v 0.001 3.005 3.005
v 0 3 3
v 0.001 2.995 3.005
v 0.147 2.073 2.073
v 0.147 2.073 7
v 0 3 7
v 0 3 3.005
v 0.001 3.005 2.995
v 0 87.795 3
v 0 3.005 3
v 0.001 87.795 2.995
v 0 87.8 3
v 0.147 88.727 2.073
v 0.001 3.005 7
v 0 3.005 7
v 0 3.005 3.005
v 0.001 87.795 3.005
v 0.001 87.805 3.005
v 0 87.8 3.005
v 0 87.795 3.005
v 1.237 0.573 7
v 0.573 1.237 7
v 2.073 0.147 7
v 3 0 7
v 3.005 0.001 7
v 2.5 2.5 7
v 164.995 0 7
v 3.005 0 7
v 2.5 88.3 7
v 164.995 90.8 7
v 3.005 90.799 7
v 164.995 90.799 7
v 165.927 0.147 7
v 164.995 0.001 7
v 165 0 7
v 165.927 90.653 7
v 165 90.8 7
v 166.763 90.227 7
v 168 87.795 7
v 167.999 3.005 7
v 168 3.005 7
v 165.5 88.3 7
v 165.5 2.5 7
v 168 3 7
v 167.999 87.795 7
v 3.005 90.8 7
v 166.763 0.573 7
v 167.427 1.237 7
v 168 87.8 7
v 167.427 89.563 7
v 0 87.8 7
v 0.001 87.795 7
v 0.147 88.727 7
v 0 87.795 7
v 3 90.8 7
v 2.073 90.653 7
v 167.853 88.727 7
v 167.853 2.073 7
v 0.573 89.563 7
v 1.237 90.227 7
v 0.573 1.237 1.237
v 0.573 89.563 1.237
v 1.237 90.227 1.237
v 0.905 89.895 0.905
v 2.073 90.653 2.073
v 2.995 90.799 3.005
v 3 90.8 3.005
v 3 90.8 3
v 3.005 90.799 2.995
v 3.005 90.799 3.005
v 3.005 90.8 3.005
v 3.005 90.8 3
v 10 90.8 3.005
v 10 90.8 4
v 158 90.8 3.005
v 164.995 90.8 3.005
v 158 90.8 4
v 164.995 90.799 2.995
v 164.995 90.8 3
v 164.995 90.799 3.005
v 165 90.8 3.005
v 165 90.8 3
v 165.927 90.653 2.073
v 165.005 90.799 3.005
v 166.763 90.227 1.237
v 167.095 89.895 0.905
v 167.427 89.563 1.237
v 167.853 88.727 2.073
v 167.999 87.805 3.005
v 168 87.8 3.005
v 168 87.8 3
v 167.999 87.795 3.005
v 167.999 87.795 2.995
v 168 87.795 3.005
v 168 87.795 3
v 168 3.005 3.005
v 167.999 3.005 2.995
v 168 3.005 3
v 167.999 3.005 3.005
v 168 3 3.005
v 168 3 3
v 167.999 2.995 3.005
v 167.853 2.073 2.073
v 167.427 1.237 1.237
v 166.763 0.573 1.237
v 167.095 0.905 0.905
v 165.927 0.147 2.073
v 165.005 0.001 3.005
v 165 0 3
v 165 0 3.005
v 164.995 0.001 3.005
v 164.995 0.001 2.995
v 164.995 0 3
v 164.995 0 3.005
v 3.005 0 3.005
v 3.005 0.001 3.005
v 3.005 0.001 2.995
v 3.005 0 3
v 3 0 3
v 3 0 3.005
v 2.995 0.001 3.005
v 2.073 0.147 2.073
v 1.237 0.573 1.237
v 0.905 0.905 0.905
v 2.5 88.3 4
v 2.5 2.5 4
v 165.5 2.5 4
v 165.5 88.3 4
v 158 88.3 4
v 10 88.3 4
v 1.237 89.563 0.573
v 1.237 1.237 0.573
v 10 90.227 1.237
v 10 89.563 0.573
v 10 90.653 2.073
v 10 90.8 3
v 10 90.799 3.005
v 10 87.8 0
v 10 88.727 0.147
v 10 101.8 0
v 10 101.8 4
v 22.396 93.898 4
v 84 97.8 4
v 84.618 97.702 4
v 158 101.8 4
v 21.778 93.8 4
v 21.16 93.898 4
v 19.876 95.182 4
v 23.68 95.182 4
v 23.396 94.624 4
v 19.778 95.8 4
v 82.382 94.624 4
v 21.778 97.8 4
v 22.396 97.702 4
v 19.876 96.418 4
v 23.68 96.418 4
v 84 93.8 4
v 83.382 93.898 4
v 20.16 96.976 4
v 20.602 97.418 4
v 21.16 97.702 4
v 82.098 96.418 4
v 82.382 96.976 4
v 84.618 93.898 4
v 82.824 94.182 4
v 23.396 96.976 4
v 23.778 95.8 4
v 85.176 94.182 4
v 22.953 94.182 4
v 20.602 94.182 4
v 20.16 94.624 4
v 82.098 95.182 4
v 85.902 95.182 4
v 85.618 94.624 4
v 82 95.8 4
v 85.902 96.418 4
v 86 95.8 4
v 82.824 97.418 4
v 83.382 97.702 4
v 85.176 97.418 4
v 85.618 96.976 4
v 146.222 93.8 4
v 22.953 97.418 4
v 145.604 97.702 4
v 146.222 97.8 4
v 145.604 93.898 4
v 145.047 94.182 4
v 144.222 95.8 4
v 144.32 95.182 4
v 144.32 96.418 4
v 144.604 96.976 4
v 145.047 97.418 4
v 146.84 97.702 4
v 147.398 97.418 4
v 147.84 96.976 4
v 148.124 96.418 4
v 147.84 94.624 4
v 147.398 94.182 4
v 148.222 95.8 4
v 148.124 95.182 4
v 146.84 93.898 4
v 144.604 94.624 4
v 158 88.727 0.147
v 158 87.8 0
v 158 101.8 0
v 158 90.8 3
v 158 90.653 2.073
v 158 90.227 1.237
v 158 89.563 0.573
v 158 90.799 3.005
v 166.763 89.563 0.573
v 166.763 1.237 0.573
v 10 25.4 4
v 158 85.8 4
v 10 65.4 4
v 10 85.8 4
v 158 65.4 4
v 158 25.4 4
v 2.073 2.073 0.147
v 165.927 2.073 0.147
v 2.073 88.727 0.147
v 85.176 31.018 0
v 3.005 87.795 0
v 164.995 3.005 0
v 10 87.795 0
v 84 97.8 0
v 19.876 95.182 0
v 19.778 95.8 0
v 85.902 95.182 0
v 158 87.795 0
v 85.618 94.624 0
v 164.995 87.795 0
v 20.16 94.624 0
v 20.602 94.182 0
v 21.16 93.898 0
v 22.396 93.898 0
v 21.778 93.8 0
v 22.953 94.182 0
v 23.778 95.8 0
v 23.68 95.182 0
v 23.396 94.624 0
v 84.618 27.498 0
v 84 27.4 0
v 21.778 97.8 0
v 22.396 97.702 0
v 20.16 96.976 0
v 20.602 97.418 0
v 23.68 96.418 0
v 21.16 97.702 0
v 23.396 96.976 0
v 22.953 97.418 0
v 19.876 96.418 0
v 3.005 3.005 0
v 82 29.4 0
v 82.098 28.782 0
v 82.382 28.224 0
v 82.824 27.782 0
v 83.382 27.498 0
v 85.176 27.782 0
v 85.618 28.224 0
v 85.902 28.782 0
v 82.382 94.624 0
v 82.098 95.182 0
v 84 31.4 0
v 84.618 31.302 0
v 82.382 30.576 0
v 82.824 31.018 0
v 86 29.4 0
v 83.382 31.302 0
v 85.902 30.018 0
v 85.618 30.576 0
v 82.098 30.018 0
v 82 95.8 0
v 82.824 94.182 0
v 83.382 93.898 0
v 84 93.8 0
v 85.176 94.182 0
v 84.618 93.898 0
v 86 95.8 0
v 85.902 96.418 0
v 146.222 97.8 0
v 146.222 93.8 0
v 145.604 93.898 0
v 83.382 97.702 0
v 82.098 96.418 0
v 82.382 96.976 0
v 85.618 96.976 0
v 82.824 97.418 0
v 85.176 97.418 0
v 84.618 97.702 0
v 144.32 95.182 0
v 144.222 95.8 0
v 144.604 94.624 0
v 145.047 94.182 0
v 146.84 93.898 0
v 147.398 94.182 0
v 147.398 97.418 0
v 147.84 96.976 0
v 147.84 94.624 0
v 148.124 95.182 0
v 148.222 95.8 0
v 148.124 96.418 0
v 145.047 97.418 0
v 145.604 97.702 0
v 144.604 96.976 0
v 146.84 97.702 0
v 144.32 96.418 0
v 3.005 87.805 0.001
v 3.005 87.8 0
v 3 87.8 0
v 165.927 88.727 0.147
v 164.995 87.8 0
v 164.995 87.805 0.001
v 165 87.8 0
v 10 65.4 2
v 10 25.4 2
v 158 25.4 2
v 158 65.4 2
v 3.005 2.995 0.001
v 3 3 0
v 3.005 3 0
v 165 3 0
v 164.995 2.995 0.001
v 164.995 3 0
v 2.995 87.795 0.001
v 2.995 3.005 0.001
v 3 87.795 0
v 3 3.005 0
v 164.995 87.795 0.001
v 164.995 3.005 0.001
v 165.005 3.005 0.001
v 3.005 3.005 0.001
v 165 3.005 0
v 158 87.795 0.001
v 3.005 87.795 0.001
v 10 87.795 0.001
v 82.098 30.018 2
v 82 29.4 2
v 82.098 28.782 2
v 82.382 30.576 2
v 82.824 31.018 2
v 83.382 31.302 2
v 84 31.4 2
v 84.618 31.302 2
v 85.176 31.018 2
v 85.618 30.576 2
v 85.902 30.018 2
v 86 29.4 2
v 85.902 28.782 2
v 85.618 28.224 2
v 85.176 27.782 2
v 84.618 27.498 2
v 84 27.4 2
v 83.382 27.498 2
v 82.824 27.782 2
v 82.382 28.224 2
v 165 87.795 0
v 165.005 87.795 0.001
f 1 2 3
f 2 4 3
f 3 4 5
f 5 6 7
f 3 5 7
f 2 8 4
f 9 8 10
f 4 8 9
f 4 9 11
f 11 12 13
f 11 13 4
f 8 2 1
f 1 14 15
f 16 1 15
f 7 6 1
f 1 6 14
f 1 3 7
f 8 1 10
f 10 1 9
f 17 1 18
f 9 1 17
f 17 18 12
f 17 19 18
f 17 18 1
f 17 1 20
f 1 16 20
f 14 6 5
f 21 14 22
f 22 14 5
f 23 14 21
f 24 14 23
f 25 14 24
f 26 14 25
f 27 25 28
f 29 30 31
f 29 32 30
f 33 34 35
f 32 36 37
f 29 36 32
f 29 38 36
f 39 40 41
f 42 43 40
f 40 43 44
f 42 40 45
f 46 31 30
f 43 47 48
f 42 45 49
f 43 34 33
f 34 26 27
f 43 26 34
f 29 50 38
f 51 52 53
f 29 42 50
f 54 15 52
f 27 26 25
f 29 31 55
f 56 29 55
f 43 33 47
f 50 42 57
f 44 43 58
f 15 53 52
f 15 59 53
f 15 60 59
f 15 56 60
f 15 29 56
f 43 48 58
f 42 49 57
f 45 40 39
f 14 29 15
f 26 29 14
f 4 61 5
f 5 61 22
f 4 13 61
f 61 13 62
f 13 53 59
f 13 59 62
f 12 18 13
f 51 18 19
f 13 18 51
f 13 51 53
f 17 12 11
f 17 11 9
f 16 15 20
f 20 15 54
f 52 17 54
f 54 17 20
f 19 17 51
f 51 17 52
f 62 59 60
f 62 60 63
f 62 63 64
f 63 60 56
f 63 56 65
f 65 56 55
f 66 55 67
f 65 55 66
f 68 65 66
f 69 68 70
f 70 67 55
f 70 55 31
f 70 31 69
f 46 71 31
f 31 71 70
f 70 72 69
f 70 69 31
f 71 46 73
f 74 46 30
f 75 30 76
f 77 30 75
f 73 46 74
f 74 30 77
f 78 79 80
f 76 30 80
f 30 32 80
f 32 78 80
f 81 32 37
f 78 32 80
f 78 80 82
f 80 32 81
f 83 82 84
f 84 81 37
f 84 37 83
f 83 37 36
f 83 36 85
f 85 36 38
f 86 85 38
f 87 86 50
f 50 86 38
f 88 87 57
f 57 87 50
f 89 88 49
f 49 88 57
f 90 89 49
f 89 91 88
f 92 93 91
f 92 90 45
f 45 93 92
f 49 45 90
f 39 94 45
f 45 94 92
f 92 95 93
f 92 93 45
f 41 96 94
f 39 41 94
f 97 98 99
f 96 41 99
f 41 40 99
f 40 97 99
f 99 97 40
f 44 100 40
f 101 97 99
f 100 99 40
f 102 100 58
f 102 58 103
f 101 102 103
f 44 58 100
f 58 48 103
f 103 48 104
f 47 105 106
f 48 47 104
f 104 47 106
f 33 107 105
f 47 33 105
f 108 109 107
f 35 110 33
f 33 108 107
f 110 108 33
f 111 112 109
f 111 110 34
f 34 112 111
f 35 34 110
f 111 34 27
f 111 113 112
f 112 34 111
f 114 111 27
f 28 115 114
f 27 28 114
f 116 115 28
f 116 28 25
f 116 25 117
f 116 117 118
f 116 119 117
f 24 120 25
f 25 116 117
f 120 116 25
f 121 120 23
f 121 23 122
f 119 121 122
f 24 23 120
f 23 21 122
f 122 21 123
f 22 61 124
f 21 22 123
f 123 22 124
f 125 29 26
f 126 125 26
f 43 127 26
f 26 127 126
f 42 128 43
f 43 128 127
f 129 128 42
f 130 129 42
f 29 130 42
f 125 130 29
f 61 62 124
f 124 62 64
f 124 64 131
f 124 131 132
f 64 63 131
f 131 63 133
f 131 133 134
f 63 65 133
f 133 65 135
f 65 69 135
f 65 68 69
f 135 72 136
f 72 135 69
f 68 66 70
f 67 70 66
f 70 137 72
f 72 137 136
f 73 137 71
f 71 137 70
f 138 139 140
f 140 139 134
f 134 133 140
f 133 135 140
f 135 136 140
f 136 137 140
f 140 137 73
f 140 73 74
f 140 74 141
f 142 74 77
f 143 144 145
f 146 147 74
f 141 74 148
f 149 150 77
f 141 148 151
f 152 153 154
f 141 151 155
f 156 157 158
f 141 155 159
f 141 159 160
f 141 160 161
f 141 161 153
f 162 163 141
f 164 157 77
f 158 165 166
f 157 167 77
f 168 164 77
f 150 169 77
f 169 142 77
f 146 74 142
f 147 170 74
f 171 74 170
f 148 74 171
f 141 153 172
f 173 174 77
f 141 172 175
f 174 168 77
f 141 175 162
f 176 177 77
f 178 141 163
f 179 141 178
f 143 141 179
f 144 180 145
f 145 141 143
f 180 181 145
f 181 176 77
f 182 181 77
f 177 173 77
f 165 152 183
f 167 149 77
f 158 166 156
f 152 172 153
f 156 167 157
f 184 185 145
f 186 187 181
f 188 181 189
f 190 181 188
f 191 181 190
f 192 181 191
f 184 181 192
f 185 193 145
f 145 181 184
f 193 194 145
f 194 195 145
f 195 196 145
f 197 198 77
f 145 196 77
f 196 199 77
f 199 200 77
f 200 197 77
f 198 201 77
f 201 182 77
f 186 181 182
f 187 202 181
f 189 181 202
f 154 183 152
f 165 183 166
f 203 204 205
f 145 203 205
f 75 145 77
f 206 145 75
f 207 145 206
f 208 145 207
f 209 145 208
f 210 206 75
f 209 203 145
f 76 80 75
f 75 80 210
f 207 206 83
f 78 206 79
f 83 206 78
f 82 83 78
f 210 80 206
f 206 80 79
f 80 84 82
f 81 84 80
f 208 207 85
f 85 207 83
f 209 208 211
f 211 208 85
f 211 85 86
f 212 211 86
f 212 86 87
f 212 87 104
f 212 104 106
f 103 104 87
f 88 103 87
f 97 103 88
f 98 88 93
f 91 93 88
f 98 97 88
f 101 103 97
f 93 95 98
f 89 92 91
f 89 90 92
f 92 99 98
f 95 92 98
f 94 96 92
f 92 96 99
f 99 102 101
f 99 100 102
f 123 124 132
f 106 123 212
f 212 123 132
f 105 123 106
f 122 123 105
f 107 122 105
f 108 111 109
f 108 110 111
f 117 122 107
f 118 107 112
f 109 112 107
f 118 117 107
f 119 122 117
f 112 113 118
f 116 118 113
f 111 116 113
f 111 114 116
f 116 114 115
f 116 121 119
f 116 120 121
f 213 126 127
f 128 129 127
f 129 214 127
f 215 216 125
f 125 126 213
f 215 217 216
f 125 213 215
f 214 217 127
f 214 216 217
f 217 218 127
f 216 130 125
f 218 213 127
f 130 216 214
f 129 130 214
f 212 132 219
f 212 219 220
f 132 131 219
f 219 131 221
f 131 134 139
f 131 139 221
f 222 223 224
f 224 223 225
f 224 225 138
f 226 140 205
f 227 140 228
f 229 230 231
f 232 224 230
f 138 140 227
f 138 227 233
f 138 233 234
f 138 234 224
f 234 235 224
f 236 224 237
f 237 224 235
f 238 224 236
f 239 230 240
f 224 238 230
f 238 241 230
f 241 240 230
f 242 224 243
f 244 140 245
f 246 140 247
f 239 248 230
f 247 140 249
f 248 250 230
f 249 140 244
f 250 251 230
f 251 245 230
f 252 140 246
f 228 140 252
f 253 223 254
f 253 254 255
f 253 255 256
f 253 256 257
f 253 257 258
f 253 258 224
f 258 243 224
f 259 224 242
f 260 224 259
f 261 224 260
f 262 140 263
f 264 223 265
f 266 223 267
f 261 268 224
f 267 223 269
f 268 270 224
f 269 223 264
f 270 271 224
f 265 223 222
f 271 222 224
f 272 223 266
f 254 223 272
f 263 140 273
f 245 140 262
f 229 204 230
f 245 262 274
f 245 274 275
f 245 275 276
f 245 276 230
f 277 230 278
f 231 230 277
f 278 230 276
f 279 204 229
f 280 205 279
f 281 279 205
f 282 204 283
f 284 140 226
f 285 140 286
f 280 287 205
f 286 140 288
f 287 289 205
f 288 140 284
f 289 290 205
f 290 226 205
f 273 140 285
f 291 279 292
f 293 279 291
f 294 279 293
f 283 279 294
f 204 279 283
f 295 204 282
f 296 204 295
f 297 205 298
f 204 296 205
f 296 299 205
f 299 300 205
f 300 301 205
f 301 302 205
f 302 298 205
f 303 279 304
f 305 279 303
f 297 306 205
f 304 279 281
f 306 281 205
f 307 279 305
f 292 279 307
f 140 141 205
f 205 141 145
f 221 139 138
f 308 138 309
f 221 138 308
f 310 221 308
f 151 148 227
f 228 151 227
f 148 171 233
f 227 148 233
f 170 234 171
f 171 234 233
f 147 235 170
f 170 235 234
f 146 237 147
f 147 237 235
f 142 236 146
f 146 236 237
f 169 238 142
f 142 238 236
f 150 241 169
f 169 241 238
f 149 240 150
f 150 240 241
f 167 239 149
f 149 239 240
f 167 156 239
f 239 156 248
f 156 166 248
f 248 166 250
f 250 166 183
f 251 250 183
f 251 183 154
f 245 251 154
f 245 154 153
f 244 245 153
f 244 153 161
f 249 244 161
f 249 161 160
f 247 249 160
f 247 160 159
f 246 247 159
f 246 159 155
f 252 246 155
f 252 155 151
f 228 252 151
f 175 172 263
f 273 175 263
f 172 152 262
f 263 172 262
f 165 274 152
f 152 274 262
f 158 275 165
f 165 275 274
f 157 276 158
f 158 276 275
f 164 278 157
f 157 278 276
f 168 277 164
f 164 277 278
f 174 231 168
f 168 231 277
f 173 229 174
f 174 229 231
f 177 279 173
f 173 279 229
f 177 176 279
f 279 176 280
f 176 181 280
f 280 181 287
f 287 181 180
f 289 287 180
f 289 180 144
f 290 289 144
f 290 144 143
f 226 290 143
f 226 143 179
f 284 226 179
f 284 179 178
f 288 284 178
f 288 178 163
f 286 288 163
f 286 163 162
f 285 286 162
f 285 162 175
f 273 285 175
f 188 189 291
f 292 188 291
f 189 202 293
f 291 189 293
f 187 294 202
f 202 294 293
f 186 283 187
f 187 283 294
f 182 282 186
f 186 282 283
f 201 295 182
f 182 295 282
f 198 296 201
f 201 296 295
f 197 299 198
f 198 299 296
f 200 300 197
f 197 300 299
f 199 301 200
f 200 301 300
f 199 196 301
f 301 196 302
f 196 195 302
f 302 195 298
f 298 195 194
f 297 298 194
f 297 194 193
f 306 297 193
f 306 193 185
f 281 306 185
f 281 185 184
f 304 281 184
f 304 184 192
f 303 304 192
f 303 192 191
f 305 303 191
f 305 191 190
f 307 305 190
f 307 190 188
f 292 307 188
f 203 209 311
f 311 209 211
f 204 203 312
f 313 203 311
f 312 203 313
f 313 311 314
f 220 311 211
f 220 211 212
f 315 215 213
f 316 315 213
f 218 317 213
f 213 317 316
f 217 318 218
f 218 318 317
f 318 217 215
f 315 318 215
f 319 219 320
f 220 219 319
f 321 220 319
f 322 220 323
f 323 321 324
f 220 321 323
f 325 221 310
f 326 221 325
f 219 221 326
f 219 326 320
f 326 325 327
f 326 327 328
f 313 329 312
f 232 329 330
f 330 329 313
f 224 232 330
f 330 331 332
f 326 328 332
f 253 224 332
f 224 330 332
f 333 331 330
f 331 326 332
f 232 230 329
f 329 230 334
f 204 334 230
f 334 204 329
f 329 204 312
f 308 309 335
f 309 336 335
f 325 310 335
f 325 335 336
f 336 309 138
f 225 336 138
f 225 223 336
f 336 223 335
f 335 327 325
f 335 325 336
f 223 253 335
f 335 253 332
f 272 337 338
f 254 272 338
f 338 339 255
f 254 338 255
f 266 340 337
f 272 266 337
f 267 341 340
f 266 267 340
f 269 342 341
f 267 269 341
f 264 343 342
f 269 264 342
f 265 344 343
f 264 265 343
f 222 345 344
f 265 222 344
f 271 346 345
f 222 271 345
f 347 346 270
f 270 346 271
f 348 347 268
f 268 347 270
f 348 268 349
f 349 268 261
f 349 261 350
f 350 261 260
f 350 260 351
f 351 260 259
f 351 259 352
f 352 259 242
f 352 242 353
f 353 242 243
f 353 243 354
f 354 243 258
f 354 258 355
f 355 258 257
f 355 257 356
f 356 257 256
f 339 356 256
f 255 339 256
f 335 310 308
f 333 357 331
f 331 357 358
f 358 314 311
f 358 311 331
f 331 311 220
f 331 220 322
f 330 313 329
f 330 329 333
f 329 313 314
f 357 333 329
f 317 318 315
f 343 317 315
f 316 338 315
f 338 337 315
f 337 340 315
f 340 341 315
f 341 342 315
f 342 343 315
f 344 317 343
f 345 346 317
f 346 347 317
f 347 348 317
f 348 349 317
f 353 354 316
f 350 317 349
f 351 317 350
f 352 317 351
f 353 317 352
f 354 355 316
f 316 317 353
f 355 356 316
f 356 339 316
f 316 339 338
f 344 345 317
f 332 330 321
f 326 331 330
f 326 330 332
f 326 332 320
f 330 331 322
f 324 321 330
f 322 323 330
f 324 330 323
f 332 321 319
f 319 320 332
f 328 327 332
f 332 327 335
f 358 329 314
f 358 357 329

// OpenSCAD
hole_size = 4;
side_wall = 2.5;
bottom_wall = 4.0;
touch_width = 163.0;
touch_length = 85.8;
touch_depth = 3.0;
wire_cut_depth = 5.0;
wire_cut_width = 20.0;
side_fillet_radius = 3.0;
bottom_fillet_radius = 3.0;

// Set the angular resolution ($fn segments per 360 deg)
$fn = 20;

box_height = bottom_wall + touch_depth;
box_width = touch_width+side_wall*2;
box_length = touch_length+side_wall*2;

module fillet(r, h) {
    translate([r / 2, r / 2, 0])
    difference() {
        cube([r + 0.01, r + 0.01, h], center = true);
        translate([r/2, r/2, 0])
          cylinder(r = r, h = h + 1, center = true);
    }
}

module box(){
  difference(){
    // Main box
    cube([box_width, box_length, box_height]);

    // cut-out the touch screen cavity
    //translate([side_wall+lip_width, side_wall+lip_width, bottom_wall])
    //  cube([trans_width-lip_width*2, trans_length-lip_width*2, box_height]);

    // cut for the touch screen
    translate([side_wall, side_wall, box_height-touch_depth])
      cube([touch_width, touch_length, touch_depth+0.1]);

    // inside cut for wires
    translate([side_wall*4, box_length*0.5-wire_cut_width, box_height-wire_cut_depth])
      cube([box_width-side_wall*8, wire_cut_width*2, wire_cut_depth*2]);

    // holes
    translate([box_width/2, box_length*0.5-wire_cut_width+hole_size, -0.1])
      cylinder(r=hole_size/2, h=box_height);

    // fillets for the side edges
    fillet(side_fillet_radius, box_height*2);
    translate([box_width,0,0])
      rotate(a=[0,0,90])
        fillet(side_fillet_radius, box_height*2);
    translate([0,box_length,0])
      rotate(a=[0,0,270])
        fillet(side_fillet_radius, box_height*2);
    translate([box_width,box_length,0])
      rotate(a=[0,0,180])
        fillet(side_fillet_radius, box_height*2);

    // fillets for the two bottom length-wise edges
    rotate(a=[90,0,0])
      fillet(bottom_fillet_radius, box_length*2+.1);
    translate([box_width,0,0])
      rotate(a=[90,-90,0])
        fillet(bottom_fillet_radius, box_length*2+.1);
    // fillets for the two bottom width-wise edges
    rotate(a=[90,0,90])
      fillet(bottom_fillet_radius, box_width*2+.1);
    translate([0,box_length,0])
      rotate(a=[90,0,-90])
        fillet(bottom_fillet_radius, box_width*2+.1);
  }
}

// Mounting tab
module tab(){
  difference(){
    translate([10,box_length-5,0])
      cube([box_width-20, 16, bottom_wall]);
    // holes
    for(x=[-1,0,1]){
      translate([box_width/2-x*(box_width/2.7), box_length+5, -0.1])
        cylinder(r=hole_size/2, h=box_height);
    }
  }
}

union(){
  box();
  tab();
}
